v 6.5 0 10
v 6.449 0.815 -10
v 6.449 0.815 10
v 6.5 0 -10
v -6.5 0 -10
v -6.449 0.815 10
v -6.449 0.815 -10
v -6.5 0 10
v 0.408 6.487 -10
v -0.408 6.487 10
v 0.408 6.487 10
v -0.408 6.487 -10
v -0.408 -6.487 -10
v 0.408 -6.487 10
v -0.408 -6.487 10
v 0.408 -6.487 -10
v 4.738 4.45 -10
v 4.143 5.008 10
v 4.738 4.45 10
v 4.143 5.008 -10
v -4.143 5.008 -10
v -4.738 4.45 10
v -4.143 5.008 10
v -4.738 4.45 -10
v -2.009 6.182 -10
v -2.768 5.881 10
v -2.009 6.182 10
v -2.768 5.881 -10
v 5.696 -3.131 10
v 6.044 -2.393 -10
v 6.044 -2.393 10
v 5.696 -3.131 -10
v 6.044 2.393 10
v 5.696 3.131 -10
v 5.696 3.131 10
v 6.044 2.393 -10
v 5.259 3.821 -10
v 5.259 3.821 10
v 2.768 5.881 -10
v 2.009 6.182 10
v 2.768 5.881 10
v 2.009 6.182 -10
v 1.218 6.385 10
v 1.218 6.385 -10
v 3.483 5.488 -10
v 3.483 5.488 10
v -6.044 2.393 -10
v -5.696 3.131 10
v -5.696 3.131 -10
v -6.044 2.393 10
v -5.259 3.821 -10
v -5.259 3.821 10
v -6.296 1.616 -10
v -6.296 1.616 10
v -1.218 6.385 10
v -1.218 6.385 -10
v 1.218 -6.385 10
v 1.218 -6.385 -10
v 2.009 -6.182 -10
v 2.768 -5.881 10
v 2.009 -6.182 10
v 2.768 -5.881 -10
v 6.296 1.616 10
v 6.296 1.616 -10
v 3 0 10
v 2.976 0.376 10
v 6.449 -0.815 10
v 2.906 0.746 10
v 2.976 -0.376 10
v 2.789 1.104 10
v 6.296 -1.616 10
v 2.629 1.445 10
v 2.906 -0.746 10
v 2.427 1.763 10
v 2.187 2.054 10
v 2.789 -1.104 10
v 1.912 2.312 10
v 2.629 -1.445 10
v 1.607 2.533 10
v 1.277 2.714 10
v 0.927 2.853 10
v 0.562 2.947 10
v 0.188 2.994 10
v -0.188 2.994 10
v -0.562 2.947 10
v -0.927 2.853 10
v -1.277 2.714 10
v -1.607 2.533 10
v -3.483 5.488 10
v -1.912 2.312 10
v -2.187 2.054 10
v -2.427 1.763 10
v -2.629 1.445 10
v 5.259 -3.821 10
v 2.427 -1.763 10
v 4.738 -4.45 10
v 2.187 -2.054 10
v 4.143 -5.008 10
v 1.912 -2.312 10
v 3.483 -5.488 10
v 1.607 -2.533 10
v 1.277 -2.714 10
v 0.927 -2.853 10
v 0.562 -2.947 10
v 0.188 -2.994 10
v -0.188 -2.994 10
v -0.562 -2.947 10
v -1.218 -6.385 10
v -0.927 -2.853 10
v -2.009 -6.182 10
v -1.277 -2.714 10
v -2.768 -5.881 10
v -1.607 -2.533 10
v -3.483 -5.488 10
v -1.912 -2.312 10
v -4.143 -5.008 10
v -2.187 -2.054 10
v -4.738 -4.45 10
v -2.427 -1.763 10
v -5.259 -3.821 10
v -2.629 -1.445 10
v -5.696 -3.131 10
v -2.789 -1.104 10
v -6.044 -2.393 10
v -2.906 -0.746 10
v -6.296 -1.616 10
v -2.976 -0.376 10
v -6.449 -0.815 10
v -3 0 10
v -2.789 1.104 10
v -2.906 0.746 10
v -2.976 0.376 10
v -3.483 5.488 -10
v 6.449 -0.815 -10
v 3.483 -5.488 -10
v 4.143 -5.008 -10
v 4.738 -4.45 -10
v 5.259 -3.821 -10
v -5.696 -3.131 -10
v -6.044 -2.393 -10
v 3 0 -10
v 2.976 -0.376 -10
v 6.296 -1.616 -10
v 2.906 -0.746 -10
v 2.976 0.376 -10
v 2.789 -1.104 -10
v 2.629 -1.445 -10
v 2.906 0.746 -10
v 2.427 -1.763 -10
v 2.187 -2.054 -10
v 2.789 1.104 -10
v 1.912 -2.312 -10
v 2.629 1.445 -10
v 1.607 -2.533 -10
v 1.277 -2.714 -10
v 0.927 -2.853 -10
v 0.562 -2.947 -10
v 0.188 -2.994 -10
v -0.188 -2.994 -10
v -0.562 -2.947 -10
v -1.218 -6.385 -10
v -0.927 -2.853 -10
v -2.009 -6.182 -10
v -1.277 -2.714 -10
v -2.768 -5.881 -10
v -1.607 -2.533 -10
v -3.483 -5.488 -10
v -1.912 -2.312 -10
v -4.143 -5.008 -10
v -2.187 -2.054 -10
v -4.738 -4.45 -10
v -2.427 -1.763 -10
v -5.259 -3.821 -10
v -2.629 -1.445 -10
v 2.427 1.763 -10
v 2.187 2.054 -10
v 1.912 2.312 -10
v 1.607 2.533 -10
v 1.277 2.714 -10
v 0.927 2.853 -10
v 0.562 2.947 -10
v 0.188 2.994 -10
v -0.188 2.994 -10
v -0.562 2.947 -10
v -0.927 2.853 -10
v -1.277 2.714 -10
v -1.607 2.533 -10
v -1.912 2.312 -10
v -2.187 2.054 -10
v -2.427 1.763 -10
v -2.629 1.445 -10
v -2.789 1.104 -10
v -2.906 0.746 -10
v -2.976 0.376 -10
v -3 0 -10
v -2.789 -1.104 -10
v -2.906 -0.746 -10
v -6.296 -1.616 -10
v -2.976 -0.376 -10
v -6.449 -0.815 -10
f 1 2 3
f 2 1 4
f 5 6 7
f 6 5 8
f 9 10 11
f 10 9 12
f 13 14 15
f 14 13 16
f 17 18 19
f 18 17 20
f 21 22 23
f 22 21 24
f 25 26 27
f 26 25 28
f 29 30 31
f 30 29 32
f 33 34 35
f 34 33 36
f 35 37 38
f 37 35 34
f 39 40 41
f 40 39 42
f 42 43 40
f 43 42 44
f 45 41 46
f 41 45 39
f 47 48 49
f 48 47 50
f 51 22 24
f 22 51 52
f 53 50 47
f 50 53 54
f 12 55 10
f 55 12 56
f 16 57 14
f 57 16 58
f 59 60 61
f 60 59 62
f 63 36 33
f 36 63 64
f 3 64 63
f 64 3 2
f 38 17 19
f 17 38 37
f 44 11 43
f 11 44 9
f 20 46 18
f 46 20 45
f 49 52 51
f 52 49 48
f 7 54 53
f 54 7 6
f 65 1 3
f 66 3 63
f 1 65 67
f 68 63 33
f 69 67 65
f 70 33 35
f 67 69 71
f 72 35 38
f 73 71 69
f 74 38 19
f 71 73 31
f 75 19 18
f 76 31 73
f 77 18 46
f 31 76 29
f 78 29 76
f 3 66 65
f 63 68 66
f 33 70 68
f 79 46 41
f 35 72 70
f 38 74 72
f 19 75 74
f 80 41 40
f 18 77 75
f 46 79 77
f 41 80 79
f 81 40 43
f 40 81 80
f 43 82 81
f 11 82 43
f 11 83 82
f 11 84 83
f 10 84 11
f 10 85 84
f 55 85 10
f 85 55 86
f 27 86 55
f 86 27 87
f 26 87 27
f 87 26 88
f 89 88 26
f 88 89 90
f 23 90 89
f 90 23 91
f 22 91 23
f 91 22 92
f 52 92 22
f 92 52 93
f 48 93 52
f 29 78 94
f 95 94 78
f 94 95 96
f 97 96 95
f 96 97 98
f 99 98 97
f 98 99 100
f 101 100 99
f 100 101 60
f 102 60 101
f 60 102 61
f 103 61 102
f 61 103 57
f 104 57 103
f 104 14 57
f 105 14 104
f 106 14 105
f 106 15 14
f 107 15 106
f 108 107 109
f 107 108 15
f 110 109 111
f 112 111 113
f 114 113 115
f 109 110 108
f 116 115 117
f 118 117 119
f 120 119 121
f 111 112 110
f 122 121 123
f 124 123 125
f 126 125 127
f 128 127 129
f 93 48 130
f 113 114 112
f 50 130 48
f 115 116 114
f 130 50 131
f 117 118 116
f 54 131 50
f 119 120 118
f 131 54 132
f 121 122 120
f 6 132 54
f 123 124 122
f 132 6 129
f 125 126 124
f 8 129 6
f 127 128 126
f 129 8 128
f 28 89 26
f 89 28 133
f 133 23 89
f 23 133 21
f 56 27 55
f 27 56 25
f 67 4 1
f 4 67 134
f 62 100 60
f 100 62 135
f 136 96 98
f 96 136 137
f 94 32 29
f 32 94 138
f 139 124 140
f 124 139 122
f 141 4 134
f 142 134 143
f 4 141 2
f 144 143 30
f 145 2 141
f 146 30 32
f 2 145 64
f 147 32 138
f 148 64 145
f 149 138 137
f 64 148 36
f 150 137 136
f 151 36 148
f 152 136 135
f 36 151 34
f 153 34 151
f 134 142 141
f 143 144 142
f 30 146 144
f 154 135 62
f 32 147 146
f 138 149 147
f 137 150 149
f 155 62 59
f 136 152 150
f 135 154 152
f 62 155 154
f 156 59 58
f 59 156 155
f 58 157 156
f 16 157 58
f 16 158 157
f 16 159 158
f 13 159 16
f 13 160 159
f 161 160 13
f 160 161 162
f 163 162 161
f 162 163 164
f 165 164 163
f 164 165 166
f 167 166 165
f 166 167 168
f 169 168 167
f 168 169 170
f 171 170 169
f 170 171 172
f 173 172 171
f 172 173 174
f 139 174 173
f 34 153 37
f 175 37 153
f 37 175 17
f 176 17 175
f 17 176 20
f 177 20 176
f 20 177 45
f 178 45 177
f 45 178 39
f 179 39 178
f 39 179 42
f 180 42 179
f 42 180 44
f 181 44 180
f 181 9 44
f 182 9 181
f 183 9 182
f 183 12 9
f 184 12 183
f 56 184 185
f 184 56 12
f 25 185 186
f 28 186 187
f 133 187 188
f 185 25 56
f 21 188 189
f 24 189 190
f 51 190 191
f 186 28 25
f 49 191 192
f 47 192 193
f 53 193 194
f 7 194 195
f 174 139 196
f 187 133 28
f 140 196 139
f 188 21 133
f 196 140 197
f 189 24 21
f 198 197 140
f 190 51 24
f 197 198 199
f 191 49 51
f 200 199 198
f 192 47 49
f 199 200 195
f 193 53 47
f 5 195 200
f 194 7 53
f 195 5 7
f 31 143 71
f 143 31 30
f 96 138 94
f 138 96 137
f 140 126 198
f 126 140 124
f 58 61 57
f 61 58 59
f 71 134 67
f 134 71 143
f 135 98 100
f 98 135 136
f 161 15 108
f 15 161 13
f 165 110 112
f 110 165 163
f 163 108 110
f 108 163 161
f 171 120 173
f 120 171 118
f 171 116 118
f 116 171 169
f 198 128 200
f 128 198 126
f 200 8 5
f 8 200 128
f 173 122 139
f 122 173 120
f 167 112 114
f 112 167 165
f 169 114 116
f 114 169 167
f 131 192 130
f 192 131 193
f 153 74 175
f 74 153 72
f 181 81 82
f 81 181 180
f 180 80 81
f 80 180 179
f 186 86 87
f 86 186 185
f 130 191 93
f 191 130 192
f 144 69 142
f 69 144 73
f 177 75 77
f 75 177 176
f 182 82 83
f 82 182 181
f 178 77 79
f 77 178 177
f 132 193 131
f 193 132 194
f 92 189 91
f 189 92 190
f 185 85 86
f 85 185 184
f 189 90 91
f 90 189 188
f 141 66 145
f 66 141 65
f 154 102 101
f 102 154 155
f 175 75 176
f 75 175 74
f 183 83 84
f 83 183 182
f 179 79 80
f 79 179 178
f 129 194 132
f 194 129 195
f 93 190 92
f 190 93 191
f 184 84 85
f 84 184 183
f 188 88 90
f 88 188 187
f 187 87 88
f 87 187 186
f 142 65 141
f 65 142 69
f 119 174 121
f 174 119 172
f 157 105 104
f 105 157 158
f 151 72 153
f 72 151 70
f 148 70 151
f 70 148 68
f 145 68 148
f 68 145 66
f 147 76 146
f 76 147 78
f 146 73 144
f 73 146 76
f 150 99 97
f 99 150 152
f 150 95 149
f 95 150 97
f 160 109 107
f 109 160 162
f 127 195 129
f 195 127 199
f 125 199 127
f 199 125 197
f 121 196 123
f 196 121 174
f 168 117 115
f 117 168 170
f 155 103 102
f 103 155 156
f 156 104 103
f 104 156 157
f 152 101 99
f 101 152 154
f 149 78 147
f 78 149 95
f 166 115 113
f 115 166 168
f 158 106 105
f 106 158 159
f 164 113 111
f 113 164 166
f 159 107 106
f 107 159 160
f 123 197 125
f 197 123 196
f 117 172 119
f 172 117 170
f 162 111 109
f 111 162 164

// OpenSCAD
$fn = 50;


difference() {
	union() {
		translate(v = [0, 0, -10.0000000000]) {
			cylinder(h = 20, r = 6.5000000000);
		}
	}
	union() {
		translate(v = [0, 0, -100.0000000000]) {
			cylinder(h = 200, r = 3);
		}
	}
}
